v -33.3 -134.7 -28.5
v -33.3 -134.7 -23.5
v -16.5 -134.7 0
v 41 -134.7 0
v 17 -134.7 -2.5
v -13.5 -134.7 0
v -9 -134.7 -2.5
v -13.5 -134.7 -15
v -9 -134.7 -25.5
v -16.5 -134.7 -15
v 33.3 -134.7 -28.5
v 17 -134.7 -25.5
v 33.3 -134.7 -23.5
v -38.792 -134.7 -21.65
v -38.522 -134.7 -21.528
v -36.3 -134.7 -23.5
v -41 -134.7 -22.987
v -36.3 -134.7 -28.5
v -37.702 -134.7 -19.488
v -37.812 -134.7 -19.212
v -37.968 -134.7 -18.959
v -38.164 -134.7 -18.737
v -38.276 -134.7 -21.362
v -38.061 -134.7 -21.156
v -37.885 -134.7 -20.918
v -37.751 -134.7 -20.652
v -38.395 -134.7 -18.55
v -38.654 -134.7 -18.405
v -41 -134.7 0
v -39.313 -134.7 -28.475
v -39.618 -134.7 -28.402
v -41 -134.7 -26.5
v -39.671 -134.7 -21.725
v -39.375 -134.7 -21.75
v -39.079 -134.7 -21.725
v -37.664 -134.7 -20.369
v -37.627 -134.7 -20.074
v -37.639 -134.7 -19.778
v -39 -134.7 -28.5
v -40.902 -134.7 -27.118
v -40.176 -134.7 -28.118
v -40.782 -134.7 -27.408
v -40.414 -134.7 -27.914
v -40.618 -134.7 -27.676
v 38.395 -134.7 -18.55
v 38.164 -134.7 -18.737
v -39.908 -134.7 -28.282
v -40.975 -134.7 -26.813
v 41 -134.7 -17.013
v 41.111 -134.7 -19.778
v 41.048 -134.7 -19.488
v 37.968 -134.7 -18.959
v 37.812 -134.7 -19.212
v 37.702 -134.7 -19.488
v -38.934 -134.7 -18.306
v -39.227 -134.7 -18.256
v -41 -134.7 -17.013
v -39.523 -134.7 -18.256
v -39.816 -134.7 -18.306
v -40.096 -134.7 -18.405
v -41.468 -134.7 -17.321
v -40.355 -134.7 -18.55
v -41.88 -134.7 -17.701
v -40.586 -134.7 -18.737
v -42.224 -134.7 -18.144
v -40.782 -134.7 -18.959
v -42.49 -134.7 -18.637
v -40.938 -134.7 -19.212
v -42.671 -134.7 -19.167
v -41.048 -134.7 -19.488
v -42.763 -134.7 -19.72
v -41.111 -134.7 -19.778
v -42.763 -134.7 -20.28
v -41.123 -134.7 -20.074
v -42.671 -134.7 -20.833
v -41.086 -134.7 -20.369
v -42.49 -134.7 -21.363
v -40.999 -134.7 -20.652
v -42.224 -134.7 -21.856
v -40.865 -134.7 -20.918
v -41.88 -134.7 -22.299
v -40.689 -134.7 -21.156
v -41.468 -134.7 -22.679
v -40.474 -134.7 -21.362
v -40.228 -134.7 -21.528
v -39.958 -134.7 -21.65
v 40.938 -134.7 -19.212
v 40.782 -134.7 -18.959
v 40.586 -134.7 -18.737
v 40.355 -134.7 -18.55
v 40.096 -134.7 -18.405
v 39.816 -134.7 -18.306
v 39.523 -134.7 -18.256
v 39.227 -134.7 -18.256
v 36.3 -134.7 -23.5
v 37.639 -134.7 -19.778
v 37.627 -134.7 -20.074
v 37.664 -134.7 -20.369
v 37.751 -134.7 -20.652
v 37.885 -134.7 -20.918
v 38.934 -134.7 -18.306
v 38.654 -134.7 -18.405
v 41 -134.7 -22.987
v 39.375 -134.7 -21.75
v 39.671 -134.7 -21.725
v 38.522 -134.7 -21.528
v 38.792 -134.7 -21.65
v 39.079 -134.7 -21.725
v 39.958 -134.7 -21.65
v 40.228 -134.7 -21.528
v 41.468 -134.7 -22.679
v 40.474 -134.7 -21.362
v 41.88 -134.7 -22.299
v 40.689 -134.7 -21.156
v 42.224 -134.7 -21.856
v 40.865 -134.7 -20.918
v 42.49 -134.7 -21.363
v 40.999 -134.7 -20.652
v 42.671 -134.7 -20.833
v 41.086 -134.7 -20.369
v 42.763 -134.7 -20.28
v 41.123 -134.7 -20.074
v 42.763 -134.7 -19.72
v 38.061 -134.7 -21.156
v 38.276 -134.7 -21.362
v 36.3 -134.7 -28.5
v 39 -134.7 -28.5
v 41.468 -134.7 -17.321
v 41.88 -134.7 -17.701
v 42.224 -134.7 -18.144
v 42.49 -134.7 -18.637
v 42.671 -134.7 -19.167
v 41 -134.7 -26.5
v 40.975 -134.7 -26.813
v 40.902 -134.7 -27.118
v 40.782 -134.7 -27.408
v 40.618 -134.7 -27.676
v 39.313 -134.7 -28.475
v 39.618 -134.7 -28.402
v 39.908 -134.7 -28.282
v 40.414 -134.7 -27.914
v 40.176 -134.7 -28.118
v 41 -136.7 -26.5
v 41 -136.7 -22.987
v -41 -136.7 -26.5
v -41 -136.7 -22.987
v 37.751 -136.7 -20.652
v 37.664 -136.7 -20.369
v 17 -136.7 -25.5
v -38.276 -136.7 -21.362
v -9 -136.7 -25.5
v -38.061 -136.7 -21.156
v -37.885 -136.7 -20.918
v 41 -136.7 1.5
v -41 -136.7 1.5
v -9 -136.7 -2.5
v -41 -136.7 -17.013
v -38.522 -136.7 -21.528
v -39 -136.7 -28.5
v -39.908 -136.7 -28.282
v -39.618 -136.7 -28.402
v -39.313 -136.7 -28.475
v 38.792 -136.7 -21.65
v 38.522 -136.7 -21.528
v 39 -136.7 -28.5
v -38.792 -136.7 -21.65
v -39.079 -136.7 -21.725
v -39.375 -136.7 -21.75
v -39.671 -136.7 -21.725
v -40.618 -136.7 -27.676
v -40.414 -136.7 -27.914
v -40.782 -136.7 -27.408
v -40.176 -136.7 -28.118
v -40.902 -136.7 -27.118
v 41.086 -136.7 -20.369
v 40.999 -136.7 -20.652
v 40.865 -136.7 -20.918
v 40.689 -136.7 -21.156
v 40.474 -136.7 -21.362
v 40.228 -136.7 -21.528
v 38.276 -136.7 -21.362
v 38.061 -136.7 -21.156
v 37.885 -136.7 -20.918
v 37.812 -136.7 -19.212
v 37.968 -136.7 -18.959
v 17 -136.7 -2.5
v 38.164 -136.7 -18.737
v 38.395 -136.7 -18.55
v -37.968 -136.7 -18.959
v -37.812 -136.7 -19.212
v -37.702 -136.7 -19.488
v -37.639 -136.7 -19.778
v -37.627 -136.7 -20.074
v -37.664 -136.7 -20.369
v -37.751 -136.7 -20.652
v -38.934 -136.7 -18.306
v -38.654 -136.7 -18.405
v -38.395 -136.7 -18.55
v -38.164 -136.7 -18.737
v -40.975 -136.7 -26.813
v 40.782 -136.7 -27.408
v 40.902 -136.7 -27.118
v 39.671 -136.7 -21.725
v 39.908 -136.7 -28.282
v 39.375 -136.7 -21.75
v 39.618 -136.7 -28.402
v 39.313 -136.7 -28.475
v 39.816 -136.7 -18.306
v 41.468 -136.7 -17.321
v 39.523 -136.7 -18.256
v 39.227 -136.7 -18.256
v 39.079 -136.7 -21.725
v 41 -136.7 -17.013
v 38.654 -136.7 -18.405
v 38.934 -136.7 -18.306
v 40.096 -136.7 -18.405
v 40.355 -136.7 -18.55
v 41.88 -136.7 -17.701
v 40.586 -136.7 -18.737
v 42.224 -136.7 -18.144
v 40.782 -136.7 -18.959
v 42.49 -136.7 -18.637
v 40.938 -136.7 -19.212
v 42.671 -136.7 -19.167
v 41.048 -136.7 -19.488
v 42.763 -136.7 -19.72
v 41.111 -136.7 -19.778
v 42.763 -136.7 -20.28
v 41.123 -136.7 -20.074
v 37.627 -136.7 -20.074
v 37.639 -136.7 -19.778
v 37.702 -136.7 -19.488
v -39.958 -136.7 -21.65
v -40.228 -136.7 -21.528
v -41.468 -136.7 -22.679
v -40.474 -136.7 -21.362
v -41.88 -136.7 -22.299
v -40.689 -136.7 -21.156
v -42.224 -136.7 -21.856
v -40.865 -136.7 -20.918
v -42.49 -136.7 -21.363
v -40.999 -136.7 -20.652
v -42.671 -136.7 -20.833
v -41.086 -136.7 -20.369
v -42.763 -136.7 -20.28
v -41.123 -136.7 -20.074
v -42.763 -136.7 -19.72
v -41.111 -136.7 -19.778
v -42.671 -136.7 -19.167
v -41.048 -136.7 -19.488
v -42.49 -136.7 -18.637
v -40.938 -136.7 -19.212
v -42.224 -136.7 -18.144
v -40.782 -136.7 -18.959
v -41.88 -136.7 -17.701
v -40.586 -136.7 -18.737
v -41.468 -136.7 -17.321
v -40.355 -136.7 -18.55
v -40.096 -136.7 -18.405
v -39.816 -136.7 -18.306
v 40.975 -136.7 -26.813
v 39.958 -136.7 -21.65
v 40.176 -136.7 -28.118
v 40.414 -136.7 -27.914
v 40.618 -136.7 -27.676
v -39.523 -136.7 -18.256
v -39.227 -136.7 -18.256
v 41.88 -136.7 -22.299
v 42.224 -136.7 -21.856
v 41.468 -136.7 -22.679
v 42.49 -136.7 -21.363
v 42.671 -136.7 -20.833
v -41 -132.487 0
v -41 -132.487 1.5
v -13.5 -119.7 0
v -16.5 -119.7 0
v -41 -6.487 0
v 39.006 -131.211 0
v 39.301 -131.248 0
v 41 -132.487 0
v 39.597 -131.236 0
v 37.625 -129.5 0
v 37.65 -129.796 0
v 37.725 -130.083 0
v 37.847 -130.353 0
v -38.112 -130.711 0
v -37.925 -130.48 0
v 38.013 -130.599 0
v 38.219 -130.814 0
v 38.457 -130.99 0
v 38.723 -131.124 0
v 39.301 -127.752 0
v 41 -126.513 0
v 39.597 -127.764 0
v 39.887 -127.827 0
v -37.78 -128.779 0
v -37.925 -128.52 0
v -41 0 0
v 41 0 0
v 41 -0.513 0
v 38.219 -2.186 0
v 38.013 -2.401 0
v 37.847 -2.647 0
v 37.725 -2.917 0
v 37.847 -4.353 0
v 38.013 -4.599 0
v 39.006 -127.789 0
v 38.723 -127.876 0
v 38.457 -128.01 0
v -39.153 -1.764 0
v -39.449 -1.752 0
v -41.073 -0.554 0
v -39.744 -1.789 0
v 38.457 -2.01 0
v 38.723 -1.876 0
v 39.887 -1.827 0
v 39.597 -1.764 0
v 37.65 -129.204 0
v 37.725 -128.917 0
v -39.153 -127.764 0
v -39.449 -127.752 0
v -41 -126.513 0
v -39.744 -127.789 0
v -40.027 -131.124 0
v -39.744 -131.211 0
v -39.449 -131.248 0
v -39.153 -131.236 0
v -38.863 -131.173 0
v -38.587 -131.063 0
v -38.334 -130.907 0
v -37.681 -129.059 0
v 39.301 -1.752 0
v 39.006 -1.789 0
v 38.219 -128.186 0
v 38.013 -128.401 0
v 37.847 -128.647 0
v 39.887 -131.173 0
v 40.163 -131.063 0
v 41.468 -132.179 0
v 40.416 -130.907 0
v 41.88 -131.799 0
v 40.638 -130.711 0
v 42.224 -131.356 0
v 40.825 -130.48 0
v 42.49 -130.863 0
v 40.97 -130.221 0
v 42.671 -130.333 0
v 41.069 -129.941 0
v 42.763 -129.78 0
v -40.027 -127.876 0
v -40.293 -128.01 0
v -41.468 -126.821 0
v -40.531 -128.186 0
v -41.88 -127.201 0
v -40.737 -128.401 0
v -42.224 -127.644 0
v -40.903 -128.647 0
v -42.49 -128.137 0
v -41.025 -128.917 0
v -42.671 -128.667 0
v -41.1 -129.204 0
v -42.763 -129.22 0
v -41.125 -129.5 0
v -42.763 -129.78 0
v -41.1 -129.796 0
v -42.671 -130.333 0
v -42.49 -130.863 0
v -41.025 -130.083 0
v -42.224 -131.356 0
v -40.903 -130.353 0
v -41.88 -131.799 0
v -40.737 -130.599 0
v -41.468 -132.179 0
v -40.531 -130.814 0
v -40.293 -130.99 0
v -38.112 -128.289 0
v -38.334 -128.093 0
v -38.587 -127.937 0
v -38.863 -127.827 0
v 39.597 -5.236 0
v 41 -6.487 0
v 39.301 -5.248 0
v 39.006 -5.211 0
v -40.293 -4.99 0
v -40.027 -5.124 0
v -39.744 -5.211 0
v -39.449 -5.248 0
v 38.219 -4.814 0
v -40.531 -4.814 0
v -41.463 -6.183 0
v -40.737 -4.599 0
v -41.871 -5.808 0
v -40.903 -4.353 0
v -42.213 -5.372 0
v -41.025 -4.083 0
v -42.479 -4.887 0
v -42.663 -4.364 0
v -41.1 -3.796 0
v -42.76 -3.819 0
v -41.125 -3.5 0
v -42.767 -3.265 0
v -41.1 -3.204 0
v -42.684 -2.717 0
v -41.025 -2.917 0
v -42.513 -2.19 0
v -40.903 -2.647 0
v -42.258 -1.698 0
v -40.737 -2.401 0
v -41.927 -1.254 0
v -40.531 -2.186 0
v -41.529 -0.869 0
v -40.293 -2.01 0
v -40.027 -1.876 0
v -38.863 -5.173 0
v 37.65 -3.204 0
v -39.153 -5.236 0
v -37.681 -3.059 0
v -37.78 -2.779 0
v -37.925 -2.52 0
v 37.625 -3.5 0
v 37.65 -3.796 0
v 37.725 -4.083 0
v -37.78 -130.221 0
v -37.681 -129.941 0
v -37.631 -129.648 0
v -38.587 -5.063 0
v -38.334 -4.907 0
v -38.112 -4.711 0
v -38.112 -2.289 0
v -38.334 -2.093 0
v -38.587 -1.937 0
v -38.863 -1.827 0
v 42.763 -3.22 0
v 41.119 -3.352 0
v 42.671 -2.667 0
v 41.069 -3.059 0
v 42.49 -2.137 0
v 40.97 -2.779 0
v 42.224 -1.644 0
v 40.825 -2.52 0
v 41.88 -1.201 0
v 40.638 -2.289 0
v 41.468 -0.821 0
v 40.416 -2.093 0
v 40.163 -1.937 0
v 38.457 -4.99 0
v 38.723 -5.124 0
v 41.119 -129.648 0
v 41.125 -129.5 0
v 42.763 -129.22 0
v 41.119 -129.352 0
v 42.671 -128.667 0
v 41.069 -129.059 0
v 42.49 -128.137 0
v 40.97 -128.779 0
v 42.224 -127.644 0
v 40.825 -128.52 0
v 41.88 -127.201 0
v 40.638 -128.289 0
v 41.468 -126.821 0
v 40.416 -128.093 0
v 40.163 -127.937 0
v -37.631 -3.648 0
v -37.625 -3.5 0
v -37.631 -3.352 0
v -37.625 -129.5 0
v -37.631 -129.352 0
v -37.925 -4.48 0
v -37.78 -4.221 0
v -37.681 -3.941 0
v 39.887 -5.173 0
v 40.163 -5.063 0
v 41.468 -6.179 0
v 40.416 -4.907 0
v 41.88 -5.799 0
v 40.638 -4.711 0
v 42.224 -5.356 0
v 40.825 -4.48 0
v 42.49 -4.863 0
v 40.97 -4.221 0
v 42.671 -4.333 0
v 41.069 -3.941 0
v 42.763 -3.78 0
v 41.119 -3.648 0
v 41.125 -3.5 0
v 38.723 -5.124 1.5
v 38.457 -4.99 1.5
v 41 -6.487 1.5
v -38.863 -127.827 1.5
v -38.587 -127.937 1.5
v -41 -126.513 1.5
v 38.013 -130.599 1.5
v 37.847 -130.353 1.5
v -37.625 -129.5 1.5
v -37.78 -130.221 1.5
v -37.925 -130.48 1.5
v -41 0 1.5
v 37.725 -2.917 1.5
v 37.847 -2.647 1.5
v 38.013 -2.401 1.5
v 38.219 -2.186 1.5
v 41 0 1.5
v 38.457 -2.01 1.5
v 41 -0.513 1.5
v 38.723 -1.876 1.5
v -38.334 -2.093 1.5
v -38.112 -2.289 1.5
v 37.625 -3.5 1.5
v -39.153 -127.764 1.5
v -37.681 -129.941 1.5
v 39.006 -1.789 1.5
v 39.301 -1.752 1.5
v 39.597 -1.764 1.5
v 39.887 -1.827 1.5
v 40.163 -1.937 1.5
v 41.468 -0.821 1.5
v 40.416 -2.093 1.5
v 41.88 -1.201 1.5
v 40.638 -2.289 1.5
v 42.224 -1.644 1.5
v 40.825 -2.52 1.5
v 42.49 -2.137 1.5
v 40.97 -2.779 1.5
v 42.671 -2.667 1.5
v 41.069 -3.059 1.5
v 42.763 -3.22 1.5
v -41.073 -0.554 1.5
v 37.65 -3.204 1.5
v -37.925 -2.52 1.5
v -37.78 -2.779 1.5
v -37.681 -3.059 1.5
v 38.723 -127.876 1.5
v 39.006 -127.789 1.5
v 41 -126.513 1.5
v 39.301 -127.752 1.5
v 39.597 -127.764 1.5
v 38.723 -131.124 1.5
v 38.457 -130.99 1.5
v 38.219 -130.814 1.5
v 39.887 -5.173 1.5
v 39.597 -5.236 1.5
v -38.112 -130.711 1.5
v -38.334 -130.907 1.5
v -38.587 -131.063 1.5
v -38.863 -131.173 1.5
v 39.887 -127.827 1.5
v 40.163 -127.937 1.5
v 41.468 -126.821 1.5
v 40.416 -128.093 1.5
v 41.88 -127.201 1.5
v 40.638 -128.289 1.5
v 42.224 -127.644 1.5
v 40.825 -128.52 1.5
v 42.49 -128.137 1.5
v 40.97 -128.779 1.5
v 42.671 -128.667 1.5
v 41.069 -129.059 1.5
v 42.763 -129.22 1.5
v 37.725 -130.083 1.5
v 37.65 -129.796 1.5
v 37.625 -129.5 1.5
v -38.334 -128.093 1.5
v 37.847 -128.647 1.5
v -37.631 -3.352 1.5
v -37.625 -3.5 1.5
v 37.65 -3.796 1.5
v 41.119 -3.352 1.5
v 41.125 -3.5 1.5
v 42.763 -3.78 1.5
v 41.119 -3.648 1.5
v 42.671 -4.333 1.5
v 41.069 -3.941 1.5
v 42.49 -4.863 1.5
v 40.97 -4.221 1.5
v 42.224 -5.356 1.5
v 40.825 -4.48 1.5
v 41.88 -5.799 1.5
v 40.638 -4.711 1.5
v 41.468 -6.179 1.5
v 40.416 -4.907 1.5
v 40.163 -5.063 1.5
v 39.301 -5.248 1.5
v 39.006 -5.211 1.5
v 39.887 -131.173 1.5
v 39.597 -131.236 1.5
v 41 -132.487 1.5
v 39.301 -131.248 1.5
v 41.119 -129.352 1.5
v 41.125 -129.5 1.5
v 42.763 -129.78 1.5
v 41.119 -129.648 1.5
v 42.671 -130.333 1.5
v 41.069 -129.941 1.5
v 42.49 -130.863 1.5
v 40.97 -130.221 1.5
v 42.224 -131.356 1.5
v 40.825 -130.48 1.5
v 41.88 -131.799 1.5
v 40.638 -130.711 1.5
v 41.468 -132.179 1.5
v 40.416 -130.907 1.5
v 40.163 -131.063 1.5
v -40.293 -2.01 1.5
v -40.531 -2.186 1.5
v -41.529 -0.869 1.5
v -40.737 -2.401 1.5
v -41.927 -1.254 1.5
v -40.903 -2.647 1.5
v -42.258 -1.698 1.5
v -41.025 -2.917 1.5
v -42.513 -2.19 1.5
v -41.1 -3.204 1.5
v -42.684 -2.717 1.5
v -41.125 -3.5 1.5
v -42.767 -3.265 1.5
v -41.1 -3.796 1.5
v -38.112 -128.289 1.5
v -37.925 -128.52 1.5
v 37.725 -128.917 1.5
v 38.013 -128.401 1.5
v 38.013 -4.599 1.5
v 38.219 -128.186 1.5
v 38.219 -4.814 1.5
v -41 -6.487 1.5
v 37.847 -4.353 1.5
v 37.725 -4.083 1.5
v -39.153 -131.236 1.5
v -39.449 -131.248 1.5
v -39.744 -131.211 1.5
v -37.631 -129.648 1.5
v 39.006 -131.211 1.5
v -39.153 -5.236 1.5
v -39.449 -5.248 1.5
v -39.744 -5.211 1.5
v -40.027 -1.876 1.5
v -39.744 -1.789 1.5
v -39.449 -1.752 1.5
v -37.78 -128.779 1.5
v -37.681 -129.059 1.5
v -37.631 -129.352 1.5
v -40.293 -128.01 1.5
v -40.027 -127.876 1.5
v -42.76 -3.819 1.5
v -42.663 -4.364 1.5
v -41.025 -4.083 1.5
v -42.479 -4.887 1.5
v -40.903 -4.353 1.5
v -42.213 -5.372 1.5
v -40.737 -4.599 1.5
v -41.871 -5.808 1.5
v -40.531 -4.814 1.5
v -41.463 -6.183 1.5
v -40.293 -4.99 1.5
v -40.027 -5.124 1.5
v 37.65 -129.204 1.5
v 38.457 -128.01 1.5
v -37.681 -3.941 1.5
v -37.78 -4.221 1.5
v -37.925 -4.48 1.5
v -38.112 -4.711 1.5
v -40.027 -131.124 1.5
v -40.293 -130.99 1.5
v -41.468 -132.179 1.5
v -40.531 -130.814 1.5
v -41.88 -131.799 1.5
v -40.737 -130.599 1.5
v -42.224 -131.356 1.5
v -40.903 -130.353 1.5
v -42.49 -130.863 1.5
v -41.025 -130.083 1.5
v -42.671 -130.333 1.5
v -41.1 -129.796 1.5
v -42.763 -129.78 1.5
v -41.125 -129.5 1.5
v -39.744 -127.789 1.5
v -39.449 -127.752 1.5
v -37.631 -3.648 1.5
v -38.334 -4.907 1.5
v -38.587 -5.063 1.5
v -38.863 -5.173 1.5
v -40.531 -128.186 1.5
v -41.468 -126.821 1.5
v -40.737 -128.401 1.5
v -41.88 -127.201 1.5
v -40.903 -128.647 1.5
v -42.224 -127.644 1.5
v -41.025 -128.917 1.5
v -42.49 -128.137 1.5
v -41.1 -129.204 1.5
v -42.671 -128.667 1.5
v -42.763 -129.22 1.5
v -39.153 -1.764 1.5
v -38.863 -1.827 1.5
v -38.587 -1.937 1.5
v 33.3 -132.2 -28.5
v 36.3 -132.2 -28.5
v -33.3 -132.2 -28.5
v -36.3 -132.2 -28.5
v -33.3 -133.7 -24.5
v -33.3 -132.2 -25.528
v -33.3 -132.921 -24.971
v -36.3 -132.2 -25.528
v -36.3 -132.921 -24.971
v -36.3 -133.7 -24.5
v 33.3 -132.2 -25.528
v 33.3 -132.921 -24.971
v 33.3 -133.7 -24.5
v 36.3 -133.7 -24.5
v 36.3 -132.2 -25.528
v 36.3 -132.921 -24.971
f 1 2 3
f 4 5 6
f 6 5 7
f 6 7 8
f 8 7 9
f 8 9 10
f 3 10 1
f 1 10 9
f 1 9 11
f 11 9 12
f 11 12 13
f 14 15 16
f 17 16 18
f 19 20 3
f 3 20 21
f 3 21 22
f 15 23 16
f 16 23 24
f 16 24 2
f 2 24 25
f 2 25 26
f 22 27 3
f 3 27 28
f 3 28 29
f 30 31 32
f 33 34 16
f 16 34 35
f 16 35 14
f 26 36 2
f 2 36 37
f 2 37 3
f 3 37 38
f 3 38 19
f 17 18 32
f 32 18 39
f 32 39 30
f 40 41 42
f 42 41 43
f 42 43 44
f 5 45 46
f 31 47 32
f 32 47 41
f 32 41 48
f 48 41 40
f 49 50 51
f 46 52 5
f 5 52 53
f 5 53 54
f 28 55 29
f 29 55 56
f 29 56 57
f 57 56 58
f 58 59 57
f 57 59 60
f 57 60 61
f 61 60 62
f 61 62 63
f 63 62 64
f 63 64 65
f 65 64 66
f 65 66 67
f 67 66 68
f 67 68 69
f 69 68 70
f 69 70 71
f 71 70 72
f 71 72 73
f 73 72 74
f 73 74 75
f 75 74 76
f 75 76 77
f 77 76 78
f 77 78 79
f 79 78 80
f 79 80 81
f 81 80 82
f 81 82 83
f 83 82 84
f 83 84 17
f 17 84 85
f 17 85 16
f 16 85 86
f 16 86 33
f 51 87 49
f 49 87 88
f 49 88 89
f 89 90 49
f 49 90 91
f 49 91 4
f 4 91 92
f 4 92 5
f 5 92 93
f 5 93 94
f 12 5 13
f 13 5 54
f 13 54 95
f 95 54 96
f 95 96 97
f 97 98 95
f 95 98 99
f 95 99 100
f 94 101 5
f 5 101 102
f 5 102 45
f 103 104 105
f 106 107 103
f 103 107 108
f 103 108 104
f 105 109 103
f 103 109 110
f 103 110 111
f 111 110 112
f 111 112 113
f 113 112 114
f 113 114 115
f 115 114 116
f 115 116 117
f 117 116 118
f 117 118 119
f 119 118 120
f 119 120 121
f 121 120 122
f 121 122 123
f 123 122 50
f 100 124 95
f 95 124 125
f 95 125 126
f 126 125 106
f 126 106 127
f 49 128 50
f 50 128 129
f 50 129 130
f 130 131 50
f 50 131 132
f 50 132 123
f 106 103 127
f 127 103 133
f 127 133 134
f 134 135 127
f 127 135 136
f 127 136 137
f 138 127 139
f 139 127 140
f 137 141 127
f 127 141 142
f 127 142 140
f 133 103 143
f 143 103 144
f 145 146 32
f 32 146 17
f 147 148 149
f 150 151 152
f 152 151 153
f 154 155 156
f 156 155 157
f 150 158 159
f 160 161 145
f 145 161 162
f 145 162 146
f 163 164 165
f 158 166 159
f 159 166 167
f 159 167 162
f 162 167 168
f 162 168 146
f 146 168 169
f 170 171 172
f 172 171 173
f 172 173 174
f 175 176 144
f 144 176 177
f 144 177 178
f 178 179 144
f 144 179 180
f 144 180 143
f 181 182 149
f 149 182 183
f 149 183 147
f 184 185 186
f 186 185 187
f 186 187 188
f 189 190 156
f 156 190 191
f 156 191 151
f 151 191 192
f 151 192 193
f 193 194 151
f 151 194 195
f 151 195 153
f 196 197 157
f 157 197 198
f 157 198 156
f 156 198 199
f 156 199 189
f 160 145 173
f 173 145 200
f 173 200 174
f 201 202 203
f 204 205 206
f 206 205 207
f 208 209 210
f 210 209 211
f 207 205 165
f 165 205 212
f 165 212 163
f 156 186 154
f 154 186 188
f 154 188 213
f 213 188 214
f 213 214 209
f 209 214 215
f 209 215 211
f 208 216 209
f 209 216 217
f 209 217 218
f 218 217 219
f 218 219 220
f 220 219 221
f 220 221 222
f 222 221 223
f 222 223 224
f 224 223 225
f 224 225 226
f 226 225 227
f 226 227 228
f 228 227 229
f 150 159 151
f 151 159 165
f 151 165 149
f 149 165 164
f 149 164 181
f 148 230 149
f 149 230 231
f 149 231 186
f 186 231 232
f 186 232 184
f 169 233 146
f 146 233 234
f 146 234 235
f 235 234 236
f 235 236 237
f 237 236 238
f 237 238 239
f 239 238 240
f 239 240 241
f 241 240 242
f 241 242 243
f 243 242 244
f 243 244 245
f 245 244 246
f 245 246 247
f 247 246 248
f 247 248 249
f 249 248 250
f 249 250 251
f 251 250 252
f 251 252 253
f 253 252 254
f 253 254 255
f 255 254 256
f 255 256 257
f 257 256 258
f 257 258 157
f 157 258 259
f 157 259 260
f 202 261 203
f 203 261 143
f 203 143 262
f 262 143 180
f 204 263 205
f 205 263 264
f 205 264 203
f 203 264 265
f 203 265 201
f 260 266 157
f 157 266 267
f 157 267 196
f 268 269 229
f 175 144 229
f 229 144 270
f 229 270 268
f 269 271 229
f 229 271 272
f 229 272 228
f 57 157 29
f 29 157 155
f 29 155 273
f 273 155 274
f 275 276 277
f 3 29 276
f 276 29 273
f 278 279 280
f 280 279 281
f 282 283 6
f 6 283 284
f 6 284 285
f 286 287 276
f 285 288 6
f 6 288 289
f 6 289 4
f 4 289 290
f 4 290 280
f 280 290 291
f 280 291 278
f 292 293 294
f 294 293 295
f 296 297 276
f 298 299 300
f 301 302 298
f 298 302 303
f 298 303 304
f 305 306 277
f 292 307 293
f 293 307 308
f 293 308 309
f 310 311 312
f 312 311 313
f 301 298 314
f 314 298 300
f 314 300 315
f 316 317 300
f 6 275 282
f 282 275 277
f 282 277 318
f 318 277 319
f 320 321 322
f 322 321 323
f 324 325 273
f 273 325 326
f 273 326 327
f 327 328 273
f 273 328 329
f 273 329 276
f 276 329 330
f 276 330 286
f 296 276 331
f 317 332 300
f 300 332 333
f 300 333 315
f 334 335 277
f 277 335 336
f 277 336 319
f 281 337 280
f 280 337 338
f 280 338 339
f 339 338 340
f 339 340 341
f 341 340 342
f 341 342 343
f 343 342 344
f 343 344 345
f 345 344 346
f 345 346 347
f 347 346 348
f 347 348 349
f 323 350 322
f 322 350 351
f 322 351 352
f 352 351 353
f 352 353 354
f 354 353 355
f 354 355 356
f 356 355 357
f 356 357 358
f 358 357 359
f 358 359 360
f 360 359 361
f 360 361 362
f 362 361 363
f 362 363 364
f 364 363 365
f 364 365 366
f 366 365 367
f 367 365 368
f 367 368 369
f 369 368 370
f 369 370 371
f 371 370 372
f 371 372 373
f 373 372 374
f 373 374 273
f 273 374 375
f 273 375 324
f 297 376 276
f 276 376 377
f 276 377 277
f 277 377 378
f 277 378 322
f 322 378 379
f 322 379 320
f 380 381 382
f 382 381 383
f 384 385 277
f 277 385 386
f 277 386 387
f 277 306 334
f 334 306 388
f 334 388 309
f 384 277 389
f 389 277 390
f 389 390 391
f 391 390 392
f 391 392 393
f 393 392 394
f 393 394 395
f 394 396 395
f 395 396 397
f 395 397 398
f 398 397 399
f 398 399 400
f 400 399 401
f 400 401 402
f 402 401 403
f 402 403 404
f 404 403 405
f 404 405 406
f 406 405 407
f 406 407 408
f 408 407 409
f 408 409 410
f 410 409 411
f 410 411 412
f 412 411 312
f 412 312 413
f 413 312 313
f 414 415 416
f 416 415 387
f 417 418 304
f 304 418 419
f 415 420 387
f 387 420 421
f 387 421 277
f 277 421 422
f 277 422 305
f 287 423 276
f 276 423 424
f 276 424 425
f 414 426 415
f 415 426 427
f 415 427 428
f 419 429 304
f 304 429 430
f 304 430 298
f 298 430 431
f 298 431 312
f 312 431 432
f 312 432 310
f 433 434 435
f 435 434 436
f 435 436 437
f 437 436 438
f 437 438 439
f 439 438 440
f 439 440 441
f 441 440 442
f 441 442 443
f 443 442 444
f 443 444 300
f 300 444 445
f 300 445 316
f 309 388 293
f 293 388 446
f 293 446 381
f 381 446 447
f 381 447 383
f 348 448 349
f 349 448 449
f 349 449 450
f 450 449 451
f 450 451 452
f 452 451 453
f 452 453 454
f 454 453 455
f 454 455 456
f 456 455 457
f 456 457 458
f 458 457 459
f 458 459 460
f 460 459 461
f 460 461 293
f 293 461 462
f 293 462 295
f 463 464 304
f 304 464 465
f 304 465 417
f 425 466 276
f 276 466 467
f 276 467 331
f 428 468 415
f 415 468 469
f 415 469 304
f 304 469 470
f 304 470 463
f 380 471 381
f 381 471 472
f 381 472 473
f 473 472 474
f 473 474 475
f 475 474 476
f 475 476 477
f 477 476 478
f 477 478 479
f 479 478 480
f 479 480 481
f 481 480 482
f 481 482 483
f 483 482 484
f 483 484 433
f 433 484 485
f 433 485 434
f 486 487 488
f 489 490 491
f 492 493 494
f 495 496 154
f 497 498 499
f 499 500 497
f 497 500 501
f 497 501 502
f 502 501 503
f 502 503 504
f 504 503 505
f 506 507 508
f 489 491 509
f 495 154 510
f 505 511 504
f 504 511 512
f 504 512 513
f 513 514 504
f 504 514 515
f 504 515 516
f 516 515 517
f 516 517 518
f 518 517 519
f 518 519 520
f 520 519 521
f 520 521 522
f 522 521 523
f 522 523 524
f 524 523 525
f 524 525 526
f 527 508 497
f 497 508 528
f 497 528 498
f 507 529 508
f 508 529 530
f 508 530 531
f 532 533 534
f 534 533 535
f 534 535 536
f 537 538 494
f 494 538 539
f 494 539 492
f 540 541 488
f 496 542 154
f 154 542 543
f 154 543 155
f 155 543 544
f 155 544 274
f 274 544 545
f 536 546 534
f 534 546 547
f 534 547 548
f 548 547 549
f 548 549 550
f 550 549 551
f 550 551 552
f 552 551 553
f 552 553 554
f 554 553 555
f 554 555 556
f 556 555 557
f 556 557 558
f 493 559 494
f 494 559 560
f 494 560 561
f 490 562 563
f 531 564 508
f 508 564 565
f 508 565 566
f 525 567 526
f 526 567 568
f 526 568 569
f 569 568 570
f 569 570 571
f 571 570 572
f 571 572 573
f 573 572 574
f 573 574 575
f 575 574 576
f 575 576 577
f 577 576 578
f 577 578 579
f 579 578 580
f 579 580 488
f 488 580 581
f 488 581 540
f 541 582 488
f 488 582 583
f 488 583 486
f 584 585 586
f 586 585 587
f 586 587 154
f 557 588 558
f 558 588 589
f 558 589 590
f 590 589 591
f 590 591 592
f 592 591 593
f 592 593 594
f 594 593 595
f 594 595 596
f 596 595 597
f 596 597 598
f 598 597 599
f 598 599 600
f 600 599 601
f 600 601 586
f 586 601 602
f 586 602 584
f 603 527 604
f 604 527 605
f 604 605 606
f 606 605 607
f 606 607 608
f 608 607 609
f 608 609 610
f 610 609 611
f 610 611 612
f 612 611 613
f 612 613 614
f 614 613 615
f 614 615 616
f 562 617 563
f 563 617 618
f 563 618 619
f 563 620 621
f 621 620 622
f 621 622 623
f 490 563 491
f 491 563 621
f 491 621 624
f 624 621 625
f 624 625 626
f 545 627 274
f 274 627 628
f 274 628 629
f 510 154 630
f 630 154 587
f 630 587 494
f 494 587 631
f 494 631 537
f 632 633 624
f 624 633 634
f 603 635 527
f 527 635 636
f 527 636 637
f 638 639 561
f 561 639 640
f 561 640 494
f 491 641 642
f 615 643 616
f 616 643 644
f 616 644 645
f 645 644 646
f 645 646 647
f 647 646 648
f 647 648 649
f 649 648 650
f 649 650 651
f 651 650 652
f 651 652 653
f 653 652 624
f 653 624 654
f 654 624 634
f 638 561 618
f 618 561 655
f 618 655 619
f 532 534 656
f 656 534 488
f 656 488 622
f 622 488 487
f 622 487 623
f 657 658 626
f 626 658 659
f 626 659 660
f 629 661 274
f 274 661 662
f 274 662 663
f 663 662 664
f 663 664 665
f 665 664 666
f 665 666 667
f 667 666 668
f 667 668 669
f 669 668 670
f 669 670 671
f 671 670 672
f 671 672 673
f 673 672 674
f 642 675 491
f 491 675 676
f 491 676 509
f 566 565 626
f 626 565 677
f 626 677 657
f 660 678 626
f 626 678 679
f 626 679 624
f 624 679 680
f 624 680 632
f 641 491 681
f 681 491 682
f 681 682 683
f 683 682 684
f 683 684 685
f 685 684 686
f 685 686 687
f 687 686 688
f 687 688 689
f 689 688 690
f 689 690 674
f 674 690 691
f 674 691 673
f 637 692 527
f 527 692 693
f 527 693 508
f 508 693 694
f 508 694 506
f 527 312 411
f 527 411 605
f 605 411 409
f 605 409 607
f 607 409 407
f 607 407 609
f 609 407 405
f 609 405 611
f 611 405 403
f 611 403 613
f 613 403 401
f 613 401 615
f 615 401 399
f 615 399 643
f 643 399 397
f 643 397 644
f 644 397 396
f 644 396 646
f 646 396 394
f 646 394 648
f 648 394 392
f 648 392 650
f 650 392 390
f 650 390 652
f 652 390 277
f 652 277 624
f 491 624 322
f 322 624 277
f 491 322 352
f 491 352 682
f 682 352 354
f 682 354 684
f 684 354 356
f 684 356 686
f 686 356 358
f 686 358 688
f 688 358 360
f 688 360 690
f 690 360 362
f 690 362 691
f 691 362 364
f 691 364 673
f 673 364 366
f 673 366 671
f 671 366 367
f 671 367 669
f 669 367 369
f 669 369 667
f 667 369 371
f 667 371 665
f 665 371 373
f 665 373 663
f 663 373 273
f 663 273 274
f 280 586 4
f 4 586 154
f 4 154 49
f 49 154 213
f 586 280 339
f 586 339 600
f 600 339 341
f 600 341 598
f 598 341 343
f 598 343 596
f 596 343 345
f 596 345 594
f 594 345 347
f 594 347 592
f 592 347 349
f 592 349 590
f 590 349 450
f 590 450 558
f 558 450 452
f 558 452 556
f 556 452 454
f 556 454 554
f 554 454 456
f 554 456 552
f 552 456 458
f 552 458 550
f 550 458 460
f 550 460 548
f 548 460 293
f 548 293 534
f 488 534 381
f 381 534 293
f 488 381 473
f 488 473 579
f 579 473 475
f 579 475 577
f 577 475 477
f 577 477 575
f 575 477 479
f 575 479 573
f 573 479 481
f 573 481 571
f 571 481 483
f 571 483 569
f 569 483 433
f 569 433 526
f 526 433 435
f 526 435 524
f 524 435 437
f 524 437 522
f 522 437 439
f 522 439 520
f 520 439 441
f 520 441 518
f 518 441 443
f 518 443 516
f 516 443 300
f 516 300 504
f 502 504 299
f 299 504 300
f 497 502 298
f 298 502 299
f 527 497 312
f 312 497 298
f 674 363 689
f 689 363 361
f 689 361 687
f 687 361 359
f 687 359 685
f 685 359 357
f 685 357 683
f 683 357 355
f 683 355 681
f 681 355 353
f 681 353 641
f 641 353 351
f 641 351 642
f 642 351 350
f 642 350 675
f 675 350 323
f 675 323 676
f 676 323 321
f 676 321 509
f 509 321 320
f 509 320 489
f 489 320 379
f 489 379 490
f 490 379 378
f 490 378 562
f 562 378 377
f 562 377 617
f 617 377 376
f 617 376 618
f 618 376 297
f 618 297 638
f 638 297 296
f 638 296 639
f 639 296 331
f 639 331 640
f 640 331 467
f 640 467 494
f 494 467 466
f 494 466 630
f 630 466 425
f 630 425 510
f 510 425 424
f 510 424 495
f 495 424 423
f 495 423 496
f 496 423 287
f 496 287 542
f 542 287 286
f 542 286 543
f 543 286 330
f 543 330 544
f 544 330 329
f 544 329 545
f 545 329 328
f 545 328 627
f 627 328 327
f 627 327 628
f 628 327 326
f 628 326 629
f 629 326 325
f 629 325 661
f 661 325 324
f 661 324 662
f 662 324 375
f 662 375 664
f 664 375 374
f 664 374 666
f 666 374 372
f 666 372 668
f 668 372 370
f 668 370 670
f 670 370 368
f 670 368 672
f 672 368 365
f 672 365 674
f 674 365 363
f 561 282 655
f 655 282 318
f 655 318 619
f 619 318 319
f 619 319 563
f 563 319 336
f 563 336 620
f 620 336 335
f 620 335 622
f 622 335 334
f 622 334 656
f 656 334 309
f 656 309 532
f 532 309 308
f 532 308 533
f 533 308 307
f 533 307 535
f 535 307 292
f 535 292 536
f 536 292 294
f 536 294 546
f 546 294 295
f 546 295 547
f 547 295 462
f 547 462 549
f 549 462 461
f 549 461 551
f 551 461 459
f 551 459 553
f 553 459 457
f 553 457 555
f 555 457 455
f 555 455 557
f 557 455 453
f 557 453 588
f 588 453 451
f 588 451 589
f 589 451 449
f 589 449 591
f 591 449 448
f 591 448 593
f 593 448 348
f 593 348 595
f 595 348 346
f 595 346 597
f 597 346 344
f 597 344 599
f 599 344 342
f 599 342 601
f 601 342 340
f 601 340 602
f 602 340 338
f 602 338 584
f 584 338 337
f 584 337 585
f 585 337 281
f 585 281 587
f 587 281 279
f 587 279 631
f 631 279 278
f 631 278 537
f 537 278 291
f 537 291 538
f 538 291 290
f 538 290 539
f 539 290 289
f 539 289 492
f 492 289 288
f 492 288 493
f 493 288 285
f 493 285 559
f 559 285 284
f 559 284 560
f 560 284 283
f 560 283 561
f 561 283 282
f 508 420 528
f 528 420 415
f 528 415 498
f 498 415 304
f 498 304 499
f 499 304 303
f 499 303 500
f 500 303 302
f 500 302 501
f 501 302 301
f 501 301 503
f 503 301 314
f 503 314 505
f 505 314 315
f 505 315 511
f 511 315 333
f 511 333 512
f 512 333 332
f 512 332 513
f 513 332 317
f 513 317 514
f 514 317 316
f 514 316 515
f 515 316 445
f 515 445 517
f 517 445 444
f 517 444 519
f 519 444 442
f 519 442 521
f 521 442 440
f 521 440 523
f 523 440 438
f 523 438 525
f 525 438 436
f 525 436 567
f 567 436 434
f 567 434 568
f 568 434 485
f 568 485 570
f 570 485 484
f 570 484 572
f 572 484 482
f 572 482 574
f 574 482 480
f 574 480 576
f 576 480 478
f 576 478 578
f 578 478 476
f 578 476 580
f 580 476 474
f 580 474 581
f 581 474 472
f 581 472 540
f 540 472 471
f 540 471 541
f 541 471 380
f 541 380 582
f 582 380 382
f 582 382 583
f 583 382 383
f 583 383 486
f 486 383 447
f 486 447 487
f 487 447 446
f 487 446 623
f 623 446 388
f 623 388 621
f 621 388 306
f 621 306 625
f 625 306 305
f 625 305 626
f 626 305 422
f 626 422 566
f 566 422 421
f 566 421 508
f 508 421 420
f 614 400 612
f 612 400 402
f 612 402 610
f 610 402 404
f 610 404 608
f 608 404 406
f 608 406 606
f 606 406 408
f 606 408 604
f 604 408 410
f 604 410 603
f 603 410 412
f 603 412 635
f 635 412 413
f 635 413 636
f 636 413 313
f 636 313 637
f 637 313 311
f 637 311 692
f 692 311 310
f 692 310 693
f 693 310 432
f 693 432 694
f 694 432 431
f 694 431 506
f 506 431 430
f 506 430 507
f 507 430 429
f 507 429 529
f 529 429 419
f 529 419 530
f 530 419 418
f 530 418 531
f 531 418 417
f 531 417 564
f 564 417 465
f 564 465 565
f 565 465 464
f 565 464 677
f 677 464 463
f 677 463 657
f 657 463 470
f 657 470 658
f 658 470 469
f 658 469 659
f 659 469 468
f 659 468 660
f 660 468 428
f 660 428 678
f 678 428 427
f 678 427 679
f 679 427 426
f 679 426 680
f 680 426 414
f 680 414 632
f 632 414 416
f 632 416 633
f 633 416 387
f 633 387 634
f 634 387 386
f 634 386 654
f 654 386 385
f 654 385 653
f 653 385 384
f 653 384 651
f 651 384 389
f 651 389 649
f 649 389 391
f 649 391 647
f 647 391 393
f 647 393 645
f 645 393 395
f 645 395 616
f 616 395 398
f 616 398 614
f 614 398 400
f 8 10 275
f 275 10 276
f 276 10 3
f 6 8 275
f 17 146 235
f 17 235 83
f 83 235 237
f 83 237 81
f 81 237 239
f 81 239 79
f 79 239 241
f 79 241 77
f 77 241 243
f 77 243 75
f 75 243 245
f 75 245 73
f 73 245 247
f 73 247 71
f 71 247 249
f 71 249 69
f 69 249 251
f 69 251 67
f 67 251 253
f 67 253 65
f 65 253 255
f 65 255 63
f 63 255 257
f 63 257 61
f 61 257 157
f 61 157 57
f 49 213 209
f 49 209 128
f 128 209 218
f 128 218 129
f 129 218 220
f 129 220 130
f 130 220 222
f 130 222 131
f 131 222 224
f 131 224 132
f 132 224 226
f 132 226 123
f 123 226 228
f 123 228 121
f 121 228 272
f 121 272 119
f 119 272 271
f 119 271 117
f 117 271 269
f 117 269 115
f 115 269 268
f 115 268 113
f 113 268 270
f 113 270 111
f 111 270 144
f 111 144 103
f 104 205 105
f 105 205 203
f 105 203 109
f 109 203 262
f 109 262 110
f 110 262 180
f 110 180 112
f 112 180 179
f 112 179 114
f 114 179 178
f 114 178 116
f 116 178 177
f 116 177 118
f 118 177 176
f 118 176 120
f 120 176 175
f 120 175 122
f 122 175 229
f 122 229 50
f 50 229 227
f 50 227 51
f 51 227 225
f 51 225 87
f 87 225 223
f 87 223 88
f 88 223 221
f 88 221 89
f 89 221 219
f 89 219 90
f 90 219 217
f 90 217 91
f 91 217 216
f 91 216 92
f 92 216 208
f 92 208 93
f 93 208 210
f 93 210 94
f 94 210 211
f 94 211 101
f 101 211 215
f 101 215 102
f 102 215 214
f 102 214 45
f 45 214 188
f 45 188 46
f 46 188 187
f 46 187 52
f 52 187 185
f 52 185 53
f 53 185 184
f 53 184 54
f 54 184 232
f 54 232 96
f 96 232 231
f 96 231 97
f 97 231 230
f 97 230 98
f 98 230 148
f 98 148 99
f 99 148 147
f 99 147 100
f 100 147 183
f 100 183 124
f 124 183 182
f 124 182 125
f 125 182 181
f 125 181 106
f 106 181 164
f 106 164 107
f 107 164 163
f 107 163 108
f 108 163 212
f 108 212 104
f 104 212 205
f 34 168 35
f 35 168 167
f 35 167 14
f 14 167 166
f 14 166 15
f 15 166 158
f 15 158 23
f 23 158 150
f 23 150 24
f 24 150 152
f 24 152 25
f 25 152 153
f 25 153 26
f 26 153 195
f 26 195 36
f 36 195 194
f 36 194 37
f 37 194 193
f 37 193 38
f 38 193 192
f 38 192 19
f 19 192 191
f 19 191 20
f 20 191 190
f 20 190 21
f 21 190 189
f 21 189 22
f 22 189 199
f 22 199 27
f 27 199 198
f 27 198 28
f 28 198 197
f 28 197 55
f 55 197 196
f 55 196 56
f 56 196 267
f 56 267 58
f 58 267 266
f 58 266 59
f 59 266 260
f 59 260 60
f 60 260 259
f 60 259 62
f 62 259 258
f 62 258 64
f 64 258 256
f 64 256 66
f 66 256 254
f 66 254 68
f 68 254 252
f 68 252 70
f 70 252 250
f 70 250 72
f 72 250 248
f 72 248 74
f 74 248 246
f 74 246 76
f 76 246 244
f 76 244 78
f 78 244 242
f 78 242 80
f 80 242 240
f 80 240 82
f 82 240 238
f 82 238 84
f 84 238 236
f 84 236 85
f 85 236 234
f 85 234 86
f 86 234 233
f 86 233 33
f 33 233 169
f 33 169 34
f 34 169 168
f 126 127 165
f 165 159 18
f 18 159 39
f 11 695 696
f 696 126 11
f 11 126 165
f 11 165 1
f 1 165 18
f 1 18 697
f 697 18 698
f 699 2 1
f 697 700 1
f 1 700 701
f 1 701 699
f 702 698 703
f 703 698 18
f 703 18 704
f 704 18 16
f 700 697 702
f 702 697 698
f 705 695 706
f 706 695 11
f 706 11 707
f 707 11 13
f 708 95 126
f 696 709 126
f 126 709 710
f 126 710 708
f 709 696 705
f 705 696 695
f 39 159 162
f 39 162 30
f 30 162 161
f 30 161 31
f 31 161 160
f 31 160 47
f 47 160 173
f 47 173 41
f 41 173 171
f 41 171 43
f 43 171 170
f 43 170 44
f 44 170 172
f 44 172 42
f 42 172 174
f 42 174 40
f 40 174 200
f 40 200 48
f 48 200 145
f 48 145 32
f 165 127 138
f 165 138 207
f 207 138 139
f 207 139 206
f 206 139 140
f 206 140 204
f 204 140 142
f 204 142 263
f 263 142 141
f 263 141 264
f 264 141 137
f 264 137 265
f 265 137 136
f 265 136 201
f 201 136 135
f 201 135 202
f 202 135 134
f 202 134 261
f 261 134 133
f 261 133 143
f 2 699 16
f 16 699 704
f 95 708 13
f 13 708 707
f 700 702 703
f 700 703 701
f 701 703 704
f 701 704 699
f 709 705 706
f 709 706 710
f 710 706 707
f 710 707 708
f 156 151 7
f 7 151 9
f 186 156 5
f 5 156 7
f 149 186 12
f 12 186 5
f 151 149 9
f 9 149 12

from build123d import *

# Parameters (mm, degrees)
SKETCH1_R                = 1.75
BOSS_EXTRUDE1_DEPTH      = 1.5
BOSS_EXTRUDE2_DEPTH      = 82
BOSS_EXTRUDE3_DEPTH      = 1.5
BOSS_EXTRUDE3_DEPTH_BACK = 1.5
BOSS_EXTRUDE4_DEPTH      = 2
SKETCH5_R                = 1.75
CUT_EXTRUDE1_DEPTH       = 2
CUT_EXTRUDE2_DEPTH       = 149.716477315
CUT_EXTRUDE2_DEPTH_BACK  = 149.716477315
SKETCH6_W                = 82
SKETCH6_H                = 11.5
BOSS_EXTRUDE6_START      = -2
SKETCH7_W                = 3
SKETCH7_H                = 4
BOSS_EXTRUDE6_DEPTH      = 2.5
FILLET1_R                = 2
CHAMFER1_SIZE            = 1
FILLET2_R                = 8
SKETCH8_W                = 26
SKETCH8_H                = 23
CUT_EXTRUDE3_DEPTH       = 22.4262221


with BuildPart() as part:
    # Sketch1 → Boss-Extrude1 (new body)
    with BuildSketch(Plane.XY):
        with BuildLine():
            Line((-37.75, -134.5), (37.75, -134.5))
            Line((37.75, -134.5), (41, -134.5))
            Line((41, -134.5), (41, -132.48653227))
            ThreePointArc((41, -132.48653227), (42.775, -129.5), (41, -126.51346773))
            Line((41, -126.51346773), (41, -6.48653227))
            ThreePointArc((41, -6.48653227), (42.775, -3.5), (41, -0.51346773))
            Line((41, -0.51346773), (41, 0))
            Line((41, 0), (-41, 0))
            Line((-41, 0), (-41.072829787, -0.55426172))
            ThreePointArc((-41.072829787, -0.55426172), (-42.774743802, -3.541738254), (-41, -6.48653227))
            Line((-41, -6.48653227), (-41, -126.51346773))
            ThreePointArc((-41, -126.51346773), (-42.775, -129.5), (-41, -132.48653227))
            Line((-41, -132.48653227), (-41, -134.5))
            Line((-41, -134.5), (-37.75, -134.5))
        make_face()
        with Locations((-39.375, -129.5)):
            Circle(SKETCH1_R, mode=Mode.SUBTRACT)
        with Locations((39.375, -129.5)):
            Circle(SKETCH1_R, mode=Mode.SUBTRACT)
        with Locations((39.375, -3.5)):
            Circle(SKETCH1_R, mode=Mode.SUBTRACT)
        with Locations((-39.375, -3.5)):
            Circle(SKETCH1_R, mode=Mode.SUBTRACT)
    extrude(amount=BOSS_EXTRUDE1_DEPTH)

    # Sketch2 → Boss-Extrude2 (add)
    with BuildSketch(Plane.ZY.offset(41)):
        Polygon((1.5, -134.5), (1.5, -136.7), (-40, -136.7), (-40, -134.7), (0, -134.7), (0, -134.5), (0, -132.48653227), (1.5, -132.48653227), align=None)
    extrude(amount=-BOSS_EXTRUDE2_DEPTH)

    # Sketch3 → Boss-Extrude3 (add, two sides: drawn at the far end of the back side and taken through both)
    with BuildSketch(Plane(origin=(-15, 0, 0), x_dir=(0, 0, -1), z_dir=(1, 0, 0)).offset(-BOSS_EXTRUDE3_DEPTH_BACK)):
        Polygon((0, -119.7), (15, -134.7), (0, -134.7), align=None)
    extrude(amount=BOSS_EXTRUDE3_DEPTH + BOSS_EXTRUDE3_DEPTH_BACK)

    # Sketch4 → Boss-Extrude4 (add)
    with BuildSketch(Plane.XZ.offset(136.7)):
        with BuildLine():
            Line((-41, -17.01346773), (-41, -22.98653227))
            ThreePointArc((-41, -22.98653227), (-42.775, -20), (-41, -17.01346773))
        make_face()
        with BuildLine():
            Line((41, -17.01346773), (41, -22.98653227))
            ThreePointArc((41, -22.98653227), (42.775, -20), (41, -17.01346773))
        make_face()
    extrude(amount=-BOSS_EXTRUDE4_DEPTH)

    # Sketch5 → Cut-Extrude1 (cut)
    with BuildSketch(Plane.XZ.offset(136.7)):
        with Locations(Location((39.375, -20, 0), (0, 0, 270))):
            Circle(SKETCH5_R)
        with Locations(Location((-39.375, -20, 0), (0, 0, 270))):
            Circle(SKETCH5_R)
    extrude(amount=-CUT_EXTRUDE1_DEPTH, mode=Mode.SUBTRACT)

    # Sketch6 → Cut-Extrude2 (cut, two sides: drawn at the far end of the back side and taken through both)
    with BuildSketch(Plane.XZ.offset(136.7).offset(-CUT_EXTRUDE2_DEPTH_BACK)):
        with Locations((0, -34.25)):
            Rectangle(SKETCH6_W, SKETCH6_H)
    extrude(amount=CUT_EXTRUDE2_DEPTH + CUT_EXTRUDE2_DEPTH_BACK, mode=Mode.SUBTRACT)

    # Sketch7 → Boss-Extrude6 (add)
    with BuildSketch(Plane.XZ.offset(136.7).offset(BOSS_EXTRUDE6_START)):
        with Locations((-34.8, -26.5)):
            Rectangle(SKETCH7_W, SKETCH7_H)
        with Locations((34.8, -26.5)):
            Rectangle(SKETCH7_W, SKETCH7_H)
    extrude(amount=-BOSS_EXTRUDE6_DEPTH)

    # Fillet1
    fillet1_edges = [part.edges().sort_by_distance(p)[0] for p in [
        (41, -135.7, -28.5),
        (-41, -135.7, -28.5),
    ]]
    fillet(fillet1_edges, radius=FILLET1_R)

    # Chamfer1
    chamfer1_edges = [part.edges().sort_by_distance(p)[0] for p in [
        (-34.8, -134.7, -24.5),
        (-34.8, -132.2, -24.5),
        (34.8, -134.7, -24.5),
        (34.8, -132.2, -24.5),
    ]]
    chamfer(chamfer1_edges, length=CHAMFER1_SIZE)

    # Fillet2
    # the kernel refuses this fillet: 8 mm, written as the material it takes off along each edge
    with BuildSketch(Plane(origin=(-28.303909917, -133.2, -24.5), x_dir=(0, -1.0, -1.118394266079786e-11), z_dir=(-1, 0, 0))) as fillet2_piece_1:
        with BuildLine():
            CenterArc((4.243746579, -7.06996192), FILLET2_R, 117.902496562, 17.097503438)
            Line((-1.413107671, -1.413107671), (0, 0))
            Line((0, 0), (0.5, 0))
        make_face()
    extrude(amount=12.992180166, mode=Mode.SUBTRACT)
    with BuildSketch(Plane(origin=(28.303909917, -133.2, -24.5), x_dir=(0, 0.7071067811865501, -0.7071067811865448), z_dir=(1, 0, 0))) as fillet2_piece_2:
        with BuildLine():
            CenterArc((1.998436033, -8), FILLET2_R, 90, 17.097503438)
            Line((-0.353553391, -0.353553391), (0, 0))
            Line((0, 0), (1.998436033, 0))
        make_face()
    extrude(amount=12.992180166, mode=Mode.SUBTRACT)

    # Sketch8 → Cut-Extrude3 (cut)
    with BuildSketch(Plane.XZ.offset(136.7)):
        with Locations((4, -14)):
            Rectangle(SKETCH8_W, SKETCH8_H)
    extrude(amount=-CUT_EXTRUDE3_DEPTH, mode=Mode.SUBTRACT)


solid = part.part
